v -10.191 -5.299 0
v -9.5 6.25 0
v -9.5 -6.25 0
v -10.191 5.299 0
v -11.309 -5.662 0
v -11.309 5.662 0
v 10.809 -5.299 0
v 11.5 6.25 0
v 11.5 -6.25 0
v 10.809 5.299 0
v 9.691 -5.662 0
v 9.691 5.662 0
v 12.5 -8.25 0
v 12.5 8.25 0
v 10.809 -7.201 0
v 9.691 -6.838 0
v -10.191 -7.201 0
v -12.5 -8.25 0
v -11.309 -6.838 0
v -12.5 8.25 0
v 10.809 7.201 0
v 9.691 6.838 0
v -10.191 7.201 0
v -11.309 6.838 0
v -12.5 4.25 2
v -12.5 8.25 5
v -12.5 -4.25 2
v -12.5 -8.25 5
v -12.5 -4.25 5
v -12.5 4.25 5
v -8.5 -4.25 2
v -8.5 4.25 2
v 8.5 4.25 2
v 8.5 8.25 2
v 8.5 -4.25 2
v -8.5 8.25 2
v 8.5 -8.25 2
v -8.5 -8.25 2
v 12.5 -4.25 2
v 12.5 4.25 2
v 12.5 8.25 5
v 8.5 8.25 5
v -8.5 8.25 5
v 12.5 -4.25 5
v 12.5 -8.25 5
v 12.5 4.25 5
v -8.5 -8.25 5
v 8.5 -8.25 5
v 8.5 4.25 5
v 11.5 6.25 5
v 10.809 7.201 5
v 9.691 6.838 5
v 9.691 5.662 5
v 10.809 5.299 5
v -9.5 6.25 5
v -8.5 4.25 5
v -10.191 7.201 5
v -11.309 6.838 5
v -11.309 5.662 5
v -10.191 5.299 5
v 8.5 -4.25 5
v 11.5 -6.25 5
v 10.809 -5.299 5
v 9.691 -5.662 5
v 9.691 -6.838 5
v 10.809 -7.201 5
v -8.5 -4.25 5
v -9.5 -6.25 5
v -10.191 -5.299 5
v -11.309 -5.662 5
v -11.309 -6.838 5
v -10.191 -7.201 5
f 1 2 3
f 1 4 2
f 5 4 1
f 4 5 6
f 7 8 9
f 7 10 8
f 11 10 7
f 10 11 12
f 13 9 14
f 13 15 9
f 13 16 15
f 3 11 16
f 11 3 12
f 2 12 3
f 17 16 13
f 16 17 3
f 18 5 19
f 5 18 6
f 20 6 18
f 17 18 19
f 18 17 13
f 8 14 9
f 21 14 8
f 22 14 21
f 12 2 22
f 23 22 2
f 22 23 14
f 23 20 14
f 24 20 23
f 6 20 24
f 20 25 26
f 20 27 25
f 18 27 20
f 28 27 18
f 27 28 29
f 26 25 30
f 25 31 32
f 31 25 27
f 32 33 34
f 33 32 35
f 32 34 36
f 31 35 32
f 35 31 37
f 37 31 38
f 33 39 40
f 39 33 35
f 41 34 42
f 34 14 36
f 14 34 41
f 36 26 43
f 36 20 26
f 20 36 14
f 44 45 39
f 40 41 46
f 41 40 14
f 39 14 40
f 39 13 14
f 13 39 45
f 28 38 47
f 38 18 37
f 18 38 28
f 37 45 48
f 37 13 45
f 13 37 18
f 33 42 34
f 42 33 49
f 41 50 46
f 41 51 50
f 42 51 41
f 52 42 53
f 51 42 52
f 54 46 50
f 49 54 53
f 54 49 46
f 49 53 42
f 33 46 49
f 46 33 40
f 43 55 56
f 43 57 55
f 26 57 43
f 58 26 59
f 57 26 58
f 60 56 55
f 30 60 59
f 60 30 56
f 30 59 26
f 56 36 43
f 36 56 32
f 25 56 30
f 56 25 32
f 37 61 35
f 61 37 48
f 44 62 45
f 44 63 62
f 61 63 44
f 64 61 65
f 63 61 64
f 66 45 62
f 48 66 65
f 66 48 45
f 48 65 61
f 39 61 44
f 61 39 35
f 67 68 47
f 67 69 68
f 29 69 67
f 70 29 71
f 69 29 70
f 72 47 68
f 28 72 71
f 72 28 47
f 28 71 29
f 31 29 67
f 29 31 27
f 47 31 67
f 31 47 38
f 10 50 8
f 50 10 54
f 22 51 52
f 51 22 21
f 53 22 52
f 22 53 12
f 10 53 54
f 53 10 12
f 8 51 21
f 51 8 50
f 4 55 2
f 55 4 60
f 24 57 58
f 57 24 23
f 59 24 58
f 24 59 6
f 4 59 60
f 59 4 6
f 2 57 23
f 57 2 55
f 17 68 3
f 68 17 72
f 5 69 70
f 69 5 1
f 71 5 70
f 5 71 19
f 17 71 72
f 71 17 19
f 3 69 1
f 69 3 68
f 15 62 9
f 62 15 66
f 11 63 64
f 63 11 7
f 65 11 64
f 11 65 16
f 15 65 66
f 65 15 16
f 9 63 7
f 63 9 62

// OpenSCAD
// picamera mounting board
// (c) 2026 Bernd Porr

// width of the board
w = 25;

// height of the board
h = 16.5;

// thickness of the board
thickness = 2;

// x coord of the drillhole
xhole = 10.5;

// y coord of the drillhole
yhole = 6.25;

// diameter of the drillhole
drilldiam = 2;

// diameter of the post
postdiam = 4;

// height of the post
postheight = 3;

color("grey")
difference() {
    union() {
        linear_extrude(height = thickness)
        square([w, h], center = true);
        translate([xhole,yhole,0])
        linear_extrude(height = postheight + thickness)
        square(postdiam,true);    
        translate([-xhole,yhole,0])
        linear_extrude(height = postheight + thickness)
        square(postdiam,true);    
        translate([xhole,-yhole,0])
        linear_extrude(height = postheight + thickness)
        square(postdiam,true);    
        translate([-xhole,-yhole,0])
        linear_extrude(height = postheight + thickness)
        square(postdiam,true);    
    }

    // drillholes
    translate([xhole,yhole,-1])
    linear_extrude(height = postheight + thickness + 2)
    circle(d=drilldiam);

    translate([-xhole,yhole,-1])
    linear_extrude(height = postheight + thickness + 2)
    circle(d=drilldiam);

    translate([-xhole,-yhole,-1])
    linear_extrude(height = postheight + thickness + 2)
    circle(d=drilldiam);
    
    translate([xhole,-yhole,-1])
    linear_extrude(height = postheight + thickness + 2)
    circle(d=drilldiam);    

}
